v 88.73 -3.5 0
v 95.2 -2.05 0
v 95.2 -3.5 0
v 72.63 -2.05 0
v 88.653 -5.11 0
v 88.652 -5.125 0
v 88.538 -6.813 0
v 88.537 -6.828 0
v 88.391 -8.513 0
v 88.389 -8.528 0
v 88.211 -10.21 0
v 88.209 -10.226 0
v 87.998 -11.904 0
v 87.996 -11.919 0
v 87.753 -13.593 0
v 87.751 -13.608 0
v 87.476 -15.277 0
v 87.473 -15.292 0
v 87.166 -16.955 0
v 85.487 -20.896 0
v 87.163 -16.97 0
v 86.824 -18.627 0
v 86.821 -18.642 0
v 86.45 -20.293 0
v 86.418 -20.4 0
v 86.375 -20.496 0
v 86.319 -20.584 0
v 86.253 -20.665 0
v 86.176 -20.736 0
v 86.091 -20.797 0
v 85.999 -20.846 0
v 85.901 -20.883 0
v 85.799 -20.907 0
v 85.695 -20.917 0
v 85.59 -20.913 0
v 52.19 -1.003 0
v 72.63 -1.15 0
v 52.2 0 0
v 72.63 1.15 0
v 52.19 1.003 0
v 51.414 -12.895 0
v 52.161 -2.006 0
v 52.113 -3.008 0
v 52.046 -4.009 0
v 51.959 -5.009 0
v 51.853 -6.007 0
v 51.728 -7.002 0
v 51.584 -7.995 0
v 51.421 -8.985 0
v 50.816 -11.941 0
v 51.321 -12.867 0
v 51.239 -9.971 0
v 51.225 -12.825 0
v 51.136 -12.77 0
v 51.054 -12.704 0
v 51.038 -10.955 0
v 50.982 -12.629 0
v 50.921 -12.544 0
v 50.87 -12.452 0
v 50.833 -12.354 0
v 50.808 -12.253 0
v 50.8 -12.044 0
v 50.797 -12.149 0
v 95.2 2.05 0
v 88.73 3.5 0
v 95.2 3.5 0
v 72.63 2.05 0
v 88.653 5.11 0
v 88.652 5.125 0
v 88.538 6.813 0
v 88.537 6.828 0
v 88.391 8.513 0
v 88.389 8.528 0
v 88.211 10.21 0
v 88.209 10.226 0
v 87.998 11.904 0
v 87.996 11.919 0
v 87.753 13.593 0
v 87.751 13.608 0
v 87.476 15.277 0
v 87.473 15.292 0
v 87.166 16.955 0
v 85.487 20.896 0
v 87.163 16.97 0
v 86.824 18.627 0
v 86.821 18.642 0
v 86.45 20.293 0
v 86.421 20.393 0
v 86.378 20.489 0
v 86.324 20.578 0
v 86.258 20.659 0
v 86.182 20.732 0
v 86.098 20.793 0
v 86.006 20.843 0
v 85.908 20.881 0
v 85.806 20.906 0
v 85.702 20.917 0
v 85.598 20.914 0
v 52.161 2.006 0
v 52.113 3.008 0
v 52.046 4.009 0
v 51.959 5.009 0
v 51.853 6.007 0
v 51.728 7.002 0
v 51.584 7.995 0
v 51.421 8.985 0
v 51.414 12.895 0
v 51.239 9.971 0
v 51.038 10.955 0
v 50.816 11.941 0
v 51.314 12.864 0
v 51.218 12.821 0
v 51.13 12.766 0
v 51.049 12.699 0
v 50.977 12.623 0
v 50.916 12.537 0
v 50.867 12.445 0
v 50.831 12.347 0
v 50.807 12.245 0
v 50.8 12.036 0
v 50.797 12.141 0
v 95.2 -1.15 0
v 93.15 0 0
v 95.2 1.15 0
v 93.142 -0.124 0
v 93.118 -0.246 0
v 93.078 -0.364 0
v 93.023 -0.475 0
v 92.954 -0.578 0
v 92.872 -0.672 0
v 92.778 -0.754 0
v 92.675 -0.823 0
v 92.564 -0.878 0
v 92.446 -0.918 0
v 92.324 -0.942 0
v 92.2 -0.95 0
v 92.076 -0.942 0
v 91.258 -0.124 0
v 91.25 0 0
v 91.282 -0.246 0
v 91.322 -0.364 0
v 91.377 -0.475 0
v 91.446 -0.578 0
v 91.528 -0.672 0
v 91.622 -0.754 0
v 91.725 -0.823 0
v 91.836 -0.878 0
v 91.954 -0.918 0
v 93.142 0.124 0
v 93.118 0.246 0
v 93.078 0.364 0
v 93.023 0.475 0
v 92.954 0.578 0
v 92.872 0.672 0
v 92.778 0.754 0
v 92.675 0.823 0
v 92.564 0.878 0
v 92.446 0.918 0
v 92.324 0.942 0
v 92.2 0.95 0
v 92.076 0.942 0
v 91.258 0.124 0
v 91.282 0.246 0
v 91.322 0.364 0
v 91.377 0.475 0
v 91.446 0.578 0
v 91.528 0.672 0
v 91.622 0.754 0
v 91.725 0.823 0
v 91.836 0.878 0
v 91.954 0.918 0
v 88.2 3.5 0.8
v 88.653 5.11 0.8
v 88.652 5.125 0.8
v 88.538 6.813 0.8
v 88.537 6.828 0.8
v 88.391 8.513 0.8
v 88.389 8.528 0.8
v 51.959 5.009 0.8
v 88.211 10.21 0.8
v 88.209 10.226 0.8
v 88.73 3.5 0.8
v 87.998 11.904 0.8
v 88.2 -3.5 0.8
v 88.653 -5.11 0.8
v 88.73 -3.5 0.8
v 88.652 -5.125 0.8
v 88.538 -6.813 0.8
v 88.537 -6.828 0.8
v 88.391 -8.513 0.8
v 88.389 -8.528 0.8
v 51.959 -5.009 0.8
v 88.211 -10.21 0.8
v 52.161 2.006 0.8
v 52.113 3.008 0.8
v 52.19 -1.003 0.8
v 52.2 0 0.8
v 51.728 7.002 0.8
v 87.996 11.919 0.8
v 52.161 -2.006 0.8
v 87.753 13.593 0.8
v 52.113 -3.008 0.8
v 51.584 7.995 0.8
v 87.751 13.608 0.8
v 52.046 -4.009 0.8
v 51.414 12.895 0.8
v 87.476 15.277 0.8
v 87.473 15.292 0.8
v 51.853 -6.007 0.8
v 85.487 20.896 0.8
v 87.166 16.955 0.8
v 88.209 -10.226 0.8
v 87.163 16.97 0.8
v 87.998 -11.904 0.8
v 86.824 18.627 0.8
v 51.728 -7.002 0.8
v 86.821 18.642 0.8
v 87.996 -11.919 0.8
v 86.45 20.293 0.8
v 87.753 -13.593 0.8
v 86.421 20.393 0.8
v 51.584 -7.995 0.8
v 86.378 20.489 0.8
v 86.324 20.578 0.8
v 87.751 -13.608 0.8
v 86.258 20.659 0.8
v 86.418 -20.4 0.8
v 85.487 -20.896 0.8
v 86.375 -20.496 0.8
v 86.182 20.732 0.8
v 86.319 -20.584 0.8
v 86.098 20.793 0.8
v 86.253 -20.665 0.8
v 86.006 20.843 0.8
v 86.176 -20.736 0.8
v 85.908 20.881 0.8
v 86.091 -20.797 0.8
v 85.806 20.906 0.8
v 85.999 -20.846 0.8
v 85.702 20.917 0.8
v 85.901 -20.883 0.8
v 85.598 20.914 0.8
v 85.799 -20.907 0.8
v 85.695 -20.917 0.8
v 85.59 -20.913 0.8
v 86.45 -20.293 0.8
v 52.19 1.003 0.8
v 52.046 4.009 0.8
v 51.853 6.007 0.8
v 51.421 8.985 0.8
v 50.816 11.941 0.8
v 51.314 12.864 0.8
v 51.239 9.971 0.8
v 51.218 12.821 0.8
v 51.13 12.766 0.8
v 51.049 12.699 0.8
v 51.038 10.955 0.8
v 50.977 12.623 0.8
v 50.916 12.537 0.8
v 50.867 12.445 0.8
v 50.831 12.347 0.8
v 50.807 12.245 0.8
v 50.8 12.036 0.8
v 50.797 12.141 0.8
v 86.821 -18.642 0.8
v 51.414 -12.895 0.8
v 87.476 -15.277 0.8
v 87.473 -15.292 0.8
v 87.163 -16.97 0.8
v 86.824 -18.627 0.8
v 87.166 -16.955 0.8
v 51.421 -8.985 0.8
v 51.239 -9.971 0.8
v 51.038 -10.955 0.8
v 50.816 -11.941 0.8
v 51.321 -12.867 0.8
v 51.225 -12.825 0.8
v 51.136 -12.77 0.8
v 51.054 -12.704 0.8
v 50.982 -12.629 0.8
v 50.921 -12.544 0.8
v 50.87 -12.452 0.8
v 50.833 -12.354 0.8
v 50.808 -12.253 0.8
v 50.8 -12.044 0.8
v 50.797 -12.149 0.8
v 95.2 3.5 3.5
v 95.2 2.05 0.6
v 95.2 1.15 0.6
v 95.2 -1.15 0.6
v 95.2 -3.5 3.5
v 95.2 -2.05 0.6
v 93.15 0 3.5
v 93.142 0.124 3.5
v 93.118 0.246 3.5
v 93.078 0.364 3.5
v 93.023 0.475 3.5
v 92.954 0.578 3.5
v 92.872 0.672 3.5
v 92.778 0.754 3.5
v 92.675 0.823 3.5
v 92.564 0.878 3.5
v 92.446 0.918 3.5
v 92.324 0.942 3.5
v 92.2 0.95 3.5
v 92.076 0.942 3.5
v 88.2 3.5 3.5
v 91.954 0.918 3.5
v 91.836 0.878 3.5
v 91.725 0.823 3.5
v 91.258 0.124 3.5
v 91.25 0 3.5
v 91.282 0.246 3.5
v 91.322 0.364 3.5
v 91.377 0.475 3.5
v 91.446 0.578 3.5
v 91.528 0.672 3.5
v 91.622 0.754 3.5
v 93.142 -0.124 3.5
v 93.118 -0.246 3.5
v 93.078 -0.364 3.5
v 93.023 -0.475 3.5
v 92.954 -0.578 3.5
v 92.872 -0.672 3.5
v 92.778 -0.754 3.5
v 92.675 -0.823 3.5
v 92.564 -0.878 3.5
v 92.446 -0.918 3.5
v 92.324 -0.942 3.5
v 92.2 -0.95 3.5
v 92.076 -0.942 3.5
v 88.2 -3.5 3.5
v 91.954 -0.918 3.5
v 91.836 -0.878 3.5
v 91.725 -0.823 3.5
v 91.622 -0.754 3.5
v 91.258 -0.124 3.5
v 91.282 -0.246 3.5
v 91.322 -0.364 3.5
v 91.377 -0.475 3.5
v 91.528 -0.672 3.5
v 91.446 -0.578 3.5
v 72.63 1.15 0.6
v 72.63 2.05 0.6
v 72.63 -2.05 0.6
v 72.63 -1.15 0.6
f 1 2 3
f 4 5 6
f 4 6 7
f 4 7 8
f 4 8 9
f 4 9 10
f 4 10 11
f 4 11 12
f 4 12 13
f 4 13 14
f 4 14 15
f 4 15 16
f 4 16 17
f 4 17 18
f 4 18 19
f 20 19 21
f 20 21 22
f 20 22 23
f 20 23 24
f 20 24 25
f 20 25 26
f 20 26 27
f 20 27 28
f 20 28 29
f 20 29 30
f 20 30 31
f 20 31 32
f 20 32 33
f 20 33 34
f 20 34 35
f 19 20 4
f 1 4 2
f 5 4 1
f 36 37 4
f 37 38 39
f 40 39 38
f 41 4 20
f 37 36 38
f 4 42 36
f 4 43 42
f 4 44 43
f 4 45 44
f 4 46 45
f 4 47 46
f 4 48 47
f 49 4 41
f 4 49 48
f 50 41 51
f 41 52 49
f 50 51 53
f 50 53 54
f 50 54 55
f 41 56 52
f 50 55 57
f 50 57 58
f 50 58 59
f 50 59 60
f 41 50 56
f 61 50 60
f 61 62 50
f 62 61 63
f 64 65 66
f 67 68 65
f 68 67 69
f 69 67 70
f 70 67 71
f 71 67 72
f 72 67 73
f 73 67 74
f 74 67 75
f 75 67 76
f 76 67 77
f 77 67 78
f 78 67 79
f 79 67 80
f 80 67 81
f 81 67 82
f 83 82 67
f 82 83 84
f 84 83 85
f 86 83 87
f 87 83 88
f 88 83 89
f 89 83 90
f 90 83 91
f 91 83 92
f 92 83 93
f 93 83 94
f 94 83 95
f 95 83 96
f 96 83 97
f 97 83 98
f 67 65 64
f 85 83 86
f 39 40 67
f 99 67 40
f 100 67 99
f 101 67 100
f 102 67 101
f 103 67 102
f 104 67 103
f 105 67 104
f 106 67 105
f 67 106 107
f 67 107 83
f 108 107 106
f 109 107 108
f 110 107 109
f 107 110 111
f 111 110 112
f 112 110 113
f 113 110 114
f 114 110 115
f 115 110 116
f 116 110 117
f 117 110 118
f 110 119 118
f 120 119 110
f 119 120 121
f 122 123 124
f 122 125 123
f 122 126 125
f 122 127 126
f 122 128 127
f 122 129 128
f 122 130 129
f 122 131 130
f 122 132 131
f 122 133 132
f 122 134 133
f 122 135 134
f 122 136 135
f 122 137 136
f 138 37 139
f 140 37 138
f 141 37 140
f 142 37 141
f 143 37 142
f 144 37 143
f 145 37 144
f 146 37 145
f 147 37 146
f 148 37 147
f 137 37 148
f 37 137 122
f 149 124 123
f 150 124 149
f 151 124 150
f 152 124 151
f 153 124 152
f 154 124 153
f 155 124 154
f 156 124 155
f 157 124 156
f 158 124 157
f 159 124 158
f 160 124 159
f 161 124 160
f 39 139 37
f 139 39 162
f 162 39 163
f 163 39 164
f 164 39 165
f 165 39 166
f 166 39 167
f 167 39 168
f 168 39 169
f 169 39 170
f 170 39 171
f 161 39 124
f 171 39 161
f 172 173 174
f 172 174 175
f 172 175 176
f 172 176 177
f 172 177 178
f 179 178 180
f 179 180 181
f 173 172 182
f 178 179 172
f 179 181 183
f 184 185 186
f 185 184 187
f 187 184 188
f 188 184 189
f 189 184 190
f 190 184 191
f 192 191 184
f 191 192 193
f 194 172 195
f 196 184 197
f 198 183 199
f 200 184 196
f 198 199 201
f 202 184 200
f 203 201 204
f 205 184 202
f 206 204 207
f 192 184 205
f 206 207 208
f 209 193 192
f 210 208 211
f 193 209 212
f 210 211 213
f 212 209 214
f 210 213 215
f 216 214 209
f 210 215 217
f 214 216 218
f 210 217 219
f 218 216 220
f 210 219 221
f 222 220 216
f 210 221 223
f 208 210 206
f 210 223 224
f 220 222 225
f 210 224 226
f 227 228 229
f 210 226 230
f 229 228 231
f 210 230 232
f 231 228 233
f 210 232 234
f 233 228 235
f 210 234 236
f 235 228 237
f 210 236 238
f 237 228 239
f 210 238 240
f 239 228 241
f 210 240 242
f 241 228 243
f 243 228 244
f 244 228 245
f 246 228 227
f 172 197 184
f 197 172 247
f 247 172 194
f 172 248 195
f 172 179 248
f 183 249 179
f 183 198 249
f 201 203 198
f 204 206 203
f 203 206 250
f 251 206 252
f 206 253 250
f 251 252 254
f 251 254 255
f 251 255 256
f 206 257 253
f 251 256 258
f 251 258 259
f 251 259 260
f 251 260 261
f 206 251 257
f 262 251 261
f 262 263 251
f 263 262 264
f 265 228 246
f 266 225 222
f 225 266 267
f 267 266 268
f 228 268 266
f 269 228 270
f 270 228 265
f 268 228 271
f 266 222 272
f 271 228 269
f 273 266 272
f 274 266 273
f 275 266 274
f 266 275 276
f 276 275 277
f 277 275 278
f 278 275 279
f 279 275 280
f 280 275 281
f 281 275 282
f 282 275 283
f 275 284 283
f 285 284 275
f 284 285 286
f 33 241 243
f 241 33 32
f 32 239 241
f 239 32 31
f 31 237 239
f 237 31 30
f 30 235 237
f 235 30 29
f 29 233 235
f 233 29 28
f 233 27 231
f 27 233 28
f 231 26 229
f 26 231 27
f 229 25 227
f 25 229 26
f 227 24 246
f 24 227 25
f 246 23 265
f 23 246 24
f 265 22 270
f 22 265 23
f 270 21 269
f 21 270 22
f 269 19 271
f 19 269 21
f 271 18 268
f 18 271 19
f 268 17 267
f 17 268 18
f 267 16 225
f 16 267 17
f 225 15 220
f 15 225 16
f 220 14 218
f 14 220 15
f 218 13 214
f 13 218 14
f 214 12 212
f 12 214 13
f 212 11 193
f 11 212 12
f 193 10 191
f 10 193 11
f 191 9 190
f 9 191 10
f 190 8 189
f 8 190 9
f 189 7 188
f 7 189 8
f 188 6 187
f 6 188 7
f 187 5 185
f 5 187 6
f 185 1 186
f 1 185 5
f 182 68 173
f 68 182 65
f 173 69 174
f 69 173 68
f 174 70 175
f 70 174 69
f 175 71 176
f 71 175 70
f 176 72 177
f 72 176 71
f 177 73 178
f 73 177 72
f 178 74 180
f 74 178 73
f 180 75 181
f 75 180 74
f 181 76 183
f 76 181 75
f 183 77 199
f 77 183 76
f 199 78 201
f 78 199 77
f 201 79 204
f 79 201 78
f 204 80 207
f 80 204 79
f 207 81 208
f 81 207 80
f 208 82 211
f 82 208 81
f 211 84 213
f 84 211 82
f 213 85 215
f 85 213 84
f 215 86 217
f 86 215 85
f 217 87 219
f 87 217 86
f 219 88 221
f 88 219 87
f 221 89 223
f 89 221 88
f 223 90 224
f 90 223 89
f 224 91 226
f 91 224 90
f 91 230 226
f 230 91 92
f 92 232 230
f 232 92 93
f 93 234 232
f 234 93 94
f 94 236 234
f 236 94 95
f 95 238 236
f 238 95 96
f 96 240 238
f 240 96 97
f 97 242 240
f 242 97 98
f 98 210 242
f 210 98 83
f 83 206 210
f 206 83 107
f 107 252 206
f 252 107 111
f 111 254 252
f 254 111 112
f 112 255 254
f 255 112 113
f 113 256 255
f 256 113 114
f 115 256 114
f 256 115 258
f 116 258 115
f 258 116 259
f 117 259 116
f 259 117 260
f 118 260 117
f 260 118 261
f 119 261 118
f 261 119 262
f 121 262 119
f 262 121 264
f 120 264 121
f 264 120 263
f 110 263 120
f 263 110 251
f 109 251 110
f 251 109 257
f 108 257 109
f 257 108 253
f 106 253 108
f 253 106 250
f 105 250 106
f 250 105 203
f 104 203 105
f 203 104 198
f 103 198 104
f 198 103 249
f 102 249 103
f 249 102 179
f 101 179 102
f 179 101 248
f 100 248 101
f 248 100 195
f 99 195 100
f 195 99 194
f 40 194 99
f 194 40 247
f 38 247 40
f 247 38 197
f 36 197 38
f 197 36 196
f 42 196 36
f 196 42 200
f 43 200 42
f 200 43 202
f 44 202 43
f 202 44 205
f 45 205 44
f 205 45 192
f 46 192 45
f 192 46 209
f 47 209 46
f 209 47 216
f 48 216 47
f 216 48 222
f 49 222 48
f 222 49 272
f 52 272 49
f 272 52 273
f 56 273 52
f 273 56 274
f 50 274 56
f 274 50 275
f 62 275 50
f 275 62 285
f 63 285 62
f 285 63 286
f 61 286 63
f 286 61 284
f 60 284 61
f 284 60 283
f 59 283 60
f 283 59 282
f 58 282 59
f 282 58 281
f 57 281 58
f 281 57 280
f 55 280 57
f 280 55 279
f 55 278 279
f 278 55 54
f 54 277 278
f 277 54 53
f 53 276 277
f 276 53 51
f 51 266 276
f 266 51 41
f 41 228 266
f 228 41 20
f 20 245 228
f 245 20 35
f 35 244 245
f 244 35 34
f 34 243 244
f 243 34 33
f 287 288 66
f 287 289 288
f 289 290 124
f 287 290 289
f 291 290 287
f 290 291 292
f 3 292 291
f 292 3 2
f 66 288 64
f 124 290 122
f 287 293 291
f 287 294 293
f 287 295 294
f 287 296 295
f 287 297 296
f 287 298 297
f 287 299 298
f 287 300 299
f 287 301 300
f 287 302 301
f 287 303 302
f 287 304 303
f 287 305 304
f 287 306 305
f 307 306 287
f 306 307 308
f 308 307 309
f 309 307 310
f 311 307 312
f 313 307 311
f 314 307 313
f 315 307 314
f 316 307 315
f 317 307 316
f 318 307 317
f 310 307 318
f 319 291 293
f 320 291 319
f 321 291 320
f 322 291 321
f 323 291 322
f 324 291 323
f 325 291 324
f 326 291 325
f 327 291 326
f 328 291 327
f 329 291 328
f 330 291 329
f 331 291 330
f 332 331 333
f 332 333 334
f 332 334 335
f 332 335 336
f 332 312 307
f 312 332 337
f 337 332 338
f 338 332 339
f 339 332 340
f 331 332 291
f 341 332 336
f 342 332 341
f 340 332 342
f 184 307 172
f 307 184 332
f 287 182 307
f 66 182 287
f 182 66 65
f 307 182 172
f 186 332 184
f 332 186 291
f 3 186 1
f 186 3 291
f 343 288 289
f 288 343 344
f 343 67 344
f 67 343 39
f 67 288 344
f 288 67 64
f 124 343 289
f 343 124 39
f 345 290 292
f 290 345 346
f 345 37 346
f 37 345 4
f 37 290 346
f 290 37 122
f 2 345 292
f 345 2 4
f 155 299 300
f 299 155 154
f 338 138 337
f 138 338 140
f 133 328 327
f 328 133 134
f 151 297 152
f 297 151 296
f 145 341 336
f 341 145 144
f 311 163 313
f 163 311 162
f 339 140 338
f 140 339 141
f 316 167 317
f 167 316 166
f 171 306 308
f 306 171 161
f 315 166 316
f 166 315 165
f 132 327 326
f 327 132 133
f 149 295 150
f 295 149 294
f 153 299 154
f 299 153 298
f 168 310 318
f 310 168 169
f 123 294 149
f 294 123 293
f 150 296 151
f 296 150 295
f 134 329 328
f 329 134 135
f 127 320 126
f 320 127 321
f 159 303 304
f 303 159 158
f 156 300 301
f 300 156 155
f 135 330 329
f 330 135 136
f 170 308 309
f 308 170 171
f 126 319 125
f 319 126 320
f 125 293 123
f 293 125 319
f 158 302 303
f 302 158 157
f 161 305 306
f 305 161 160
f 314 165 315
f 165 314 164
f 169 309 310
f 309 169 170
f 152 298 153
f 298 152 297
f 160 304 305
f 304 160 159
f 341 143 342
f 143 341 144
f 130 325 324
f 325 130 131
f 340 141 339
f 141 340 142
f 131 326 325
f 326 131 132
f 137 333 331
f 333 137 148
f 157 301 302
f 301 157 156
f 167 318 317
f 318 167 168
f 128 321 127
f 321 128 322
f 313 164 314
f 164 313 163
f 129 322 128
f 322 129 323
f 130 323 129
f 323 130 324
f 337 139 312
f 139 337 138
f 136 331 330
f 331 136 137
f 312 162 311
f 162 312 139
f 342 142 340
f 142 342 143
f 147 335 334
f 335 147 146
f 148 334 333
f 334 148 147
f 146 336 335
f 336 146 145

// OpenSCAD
// file: parameters.scad
// =============================================================================
// Gen-BZ — nightly 2026-10-11 (physics_scorer, honest magpylib watts)
// Minimum-gap, wire-saver stator for the Gen-BX rotors: only 5.4 mm of copper (12 layers), so the magnet faces are just 8.0 mm apart and peak Bz at the copper reaches ≈0.64 T. It holds ~20 % less copper than Gen-BX (≈300 m, leaving ~90 m of the spool spare and much less winding), and loses only ≈5.5 % of the watts vs Gen-BX — the best watts-per-metre of wire tonight.
// Clocking 0 deg (magnets N facing S) + D-flat keyed bore + index notch + flip-symmetric hole map.
// Windable 2-piece bobbin; turns = physics_scorer turns_fit; copper only between flanges.
// Steel back-iron: 2× Ø168 × 4.76 mm (3/16") mild-steel discs (steel_backiron_disc.dxf); magnets sit ON the steel
// (through-pockets) -> score with --back-iron. Night 2026-10-11.
// =============================================================================
topology            = "dual_rotor";

// --- Wire / winding (physics_scorer winding-fit) -------------------------------
wire_awg            = 26;
wire_od             = 0.45;     // insulated OD mm (bare 0.405)
fill_realistic      = 0.65;     // insulated-wire area / window (DENSE layered wind with a jig; scorer cap 0.65)
turns               = 328;       // = physics_scorer turns_fit (do NOT raise)
coil_former_type    = "bobbin";
coil_core_inset     = 14.87;     // radial copper build: hub = copper boundary inset by this
wind_build_axial    = 0.0;      // nothing proud of the flanges
wind_build_radial   = 0.0;

// --- Bobbin (base + lid) ---------------------------------------------------------
coil_id_r           = 53.00;    // copper boundary sector
coil_od_r           = 88.00;
span_deg            = 26.43;    // = pitch - 2*asin((wall+0.85)/coil_id_r) -> >=1.2 mm stator web
former_web          = 5.40;     // copper height between flanges (TALL copper: steel keeps Bz up)
flange_t            = 0.80;     // >= 0.8 mm FDM wall rule (tall winds push on the flanges)
wall                = 0.80;     // flange lip beyond copper
former_bare_h       = former_web + 2 * flange_t;
coil_envelope_h     = former_bare_h + 2 * wind_build_axial;
tab_w               = 7.0;
tab_len             = 7.0;
tab_h               = former_bare_h / 2;
pin_d               = 1.9;      // 1.75 mm filament locating pin
coil_mount_r        = coil_od_r + 0.2 + 4.0;
lead_y              = 1.6;
lead_slot_w         = 0.9;
lead_groove_d       = 0.6;

// --- Gap -------------------------------------------------------------------------
run_clear           = 0.50;     // rotor face -> flange
gap_spacer_h        = run_clear + wind_build_axial;
m2m                 = coil_envelope_h + 2 * run_clear;   // rotor face to rotor face (= gap_sleeve length)

// --- Stator ----------------------------------------------------------------------
coil_stations       = 12;
bay_clear           = 0.25;
stator_thick        = former_bare_h;                        // bobbins flush both faces
stator_od           = 194;
shaft_clear_stator  = 14.0;     // stator is static; gap sleeve OD 12 spins inside

// --- Rotor(s) --------------------------------------------------------------------
magnet_Br           = 1.43;     // N52
magnet_d_large      = 20.0;
magnet_h_large      = 5.0;      // one O20x5 per pocket
magnet_h_small      = 5.0;      // unused: no O5 pockets in this kit
halbach_magnetisation = "none";  // NO O5 assist magnets in this kit (scan: they lower the 4-pole score)
rotor_b_same_axis   = true;     // same-index magnets share one axis: N faces S across the gap
large_pocket_d      = 20.3;
small_pocket_d      = 5.3;
pocket_h            = 5.00;     // THROUGH the carrier: magnet back face sits on the steel disc (FLUSH seat: carrier = magnet height, magnet face level with the rotor face)
large_n             = 8;
R_large             = 71.0;
small_r_list        = [];       // no O5 pockets
carrier_od          = 168.0;
carrier_thick       = pocket_h;
hub_h               = 12.0;     // > steel_t + insert: radial set-screw clears the steel
hub_od              = 24.0;     // slim hub so the M4 brace rods fit at R~18 inside the coil ring
hub_insert_d        = 4.0;      // M3 heat-set insert, radial, bears on the D-flat
rotor_b_offset_deg  = 0.0;      // CLOCKING: magnets directly opposite
shaft_key           = "dflat";
dflat_depth         = 0.5;      // 8 mm shaft with 0.5 mm flat (7.5 across flat)
index_notch_d       = 3.0;

// --- Steel back-iron (buyable laser-cut) -------------------------------------------
steel_t             = 4.76;      // mild steel thickness (image method ignores it; sized from steel_flux.py so the return path stays well below saturation)
steel_center_hole   = 26.0;     // slips over the rotor hub (OD 24)
steel_od            = carrier_od;   // steel disc OD = rotor carrier OD

// --- Modular MAX interface ----------------------------------------------------------
shaft_bore          = 8.35;
dflat_x             = 4.0 - dflat_depth + (shaft_bore - 8.0) / 2;
bearing_d           = 21.85;
bearing_h           = 7.2;
m3_clear            = 3.5;
bolt_r_inner        = 30.0;     // M3 steel-disc clamp bolts (inside the magnet ring)
bolt_n_inner        = 4;
bolt_inner_angles   = [0, 90, 180, 270];
bolt_r_outer        = 44.0;     // second M3 steel-disc clamp ring
bolt_outer_angles   = [67.5, 112.5, 247.5, 292.5];
flange_bolt_r       = 91.5;     // frame rods: OUTSIDE the rotor OD (rotors spin inside them)
flange_bolt_n       = 4;
flange_bolt_offset  = 45.00;    // between coil stations -> never cuts a lead groove/tab
brace_r             = 18.0;
brace_d             = 4.3;      // temporary M4 jack rods (assembly only)
brace_n             = 4;
brace_angles        = [45, 135, 225, 315];          // flip-symmetric

spacer_pad_od       = 14.0;
spacer_pad_id       = m3_clear;
endbell_od          = 193.0;
endbell_thick       = 8.0;
endbell_shaft_clear = 10.0;
collar_h            = 10.0;
standoff_od         = 9.0;
frame_standoff_h    = run_clear + carrier_thick + hub_h + collar_h + 2.0;
sleeve_od           = 12.0;
plate_max_mm        = 410;

$fn = 64;
// main file
// Gen-BZ — bobbin LID (top flange + locating tab). Print x12, flange face DOWN on the bed.
// CA-glue onto the hub top BEFORE winding. Tab = lap joint into the stator tab pocket; 1.75 mm filament
// pin through pin hole + stator ledge, trim flush. Lead slots carry both leads flush.
include <parameters.scad>;
$fn = 48;
module sector_2d(r_in, r_out, ang) {
    polygon([
        for (a = [-ang/2 : ang/24 : ang/2]) [r_in*cos(a), r_in*sin(a)],
        for (a = [ang/2 : -ang/24 : -ang/2]) [r_out*cos(a), r_out*sin(a)]
    ]);
}
module footprint_2d() { offset(r=wall) sector_2d(coil_id_r, coil_od_r, span_deg); }
module hub_2d()       { offset(delta=-coil_core_inset) sector_2d(coil_id_r, coil_od_r, span_deg); }

difference() {
    union() {
        linear_extrude(flange_t) footprint_2d();
        translate([coil_od_r + 0.2, -tab_w/2, 0]) cube([tab_len, tab_w, tab_h]);
    }
    translate([coil_mount_r, 0, -0.1]) cylinder(d=pin_d, h=tab_h + 1);
    for (y = [lead_y, -lead_y])
        translate([coil_od_r - coil_core_inset - 0.5, y - lead_slot_w/2, -0.1])
            cube([coil_core_inset + tab_len + 2, lead_slot_w, lead_groove_d + 0.1]);
}
